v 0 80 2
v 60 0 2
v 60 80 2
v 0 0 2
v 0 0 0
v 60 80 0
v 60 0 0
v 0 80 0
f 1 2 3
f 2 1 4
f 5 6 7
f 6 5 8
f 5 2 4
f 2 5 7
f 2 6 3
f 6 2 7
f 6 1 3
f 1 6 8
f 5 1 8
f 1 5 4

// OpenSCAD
base_width = 60;
base_height = 80;
base_depth = 2;

cube([base_width, base_height, base_depth], center=false);
